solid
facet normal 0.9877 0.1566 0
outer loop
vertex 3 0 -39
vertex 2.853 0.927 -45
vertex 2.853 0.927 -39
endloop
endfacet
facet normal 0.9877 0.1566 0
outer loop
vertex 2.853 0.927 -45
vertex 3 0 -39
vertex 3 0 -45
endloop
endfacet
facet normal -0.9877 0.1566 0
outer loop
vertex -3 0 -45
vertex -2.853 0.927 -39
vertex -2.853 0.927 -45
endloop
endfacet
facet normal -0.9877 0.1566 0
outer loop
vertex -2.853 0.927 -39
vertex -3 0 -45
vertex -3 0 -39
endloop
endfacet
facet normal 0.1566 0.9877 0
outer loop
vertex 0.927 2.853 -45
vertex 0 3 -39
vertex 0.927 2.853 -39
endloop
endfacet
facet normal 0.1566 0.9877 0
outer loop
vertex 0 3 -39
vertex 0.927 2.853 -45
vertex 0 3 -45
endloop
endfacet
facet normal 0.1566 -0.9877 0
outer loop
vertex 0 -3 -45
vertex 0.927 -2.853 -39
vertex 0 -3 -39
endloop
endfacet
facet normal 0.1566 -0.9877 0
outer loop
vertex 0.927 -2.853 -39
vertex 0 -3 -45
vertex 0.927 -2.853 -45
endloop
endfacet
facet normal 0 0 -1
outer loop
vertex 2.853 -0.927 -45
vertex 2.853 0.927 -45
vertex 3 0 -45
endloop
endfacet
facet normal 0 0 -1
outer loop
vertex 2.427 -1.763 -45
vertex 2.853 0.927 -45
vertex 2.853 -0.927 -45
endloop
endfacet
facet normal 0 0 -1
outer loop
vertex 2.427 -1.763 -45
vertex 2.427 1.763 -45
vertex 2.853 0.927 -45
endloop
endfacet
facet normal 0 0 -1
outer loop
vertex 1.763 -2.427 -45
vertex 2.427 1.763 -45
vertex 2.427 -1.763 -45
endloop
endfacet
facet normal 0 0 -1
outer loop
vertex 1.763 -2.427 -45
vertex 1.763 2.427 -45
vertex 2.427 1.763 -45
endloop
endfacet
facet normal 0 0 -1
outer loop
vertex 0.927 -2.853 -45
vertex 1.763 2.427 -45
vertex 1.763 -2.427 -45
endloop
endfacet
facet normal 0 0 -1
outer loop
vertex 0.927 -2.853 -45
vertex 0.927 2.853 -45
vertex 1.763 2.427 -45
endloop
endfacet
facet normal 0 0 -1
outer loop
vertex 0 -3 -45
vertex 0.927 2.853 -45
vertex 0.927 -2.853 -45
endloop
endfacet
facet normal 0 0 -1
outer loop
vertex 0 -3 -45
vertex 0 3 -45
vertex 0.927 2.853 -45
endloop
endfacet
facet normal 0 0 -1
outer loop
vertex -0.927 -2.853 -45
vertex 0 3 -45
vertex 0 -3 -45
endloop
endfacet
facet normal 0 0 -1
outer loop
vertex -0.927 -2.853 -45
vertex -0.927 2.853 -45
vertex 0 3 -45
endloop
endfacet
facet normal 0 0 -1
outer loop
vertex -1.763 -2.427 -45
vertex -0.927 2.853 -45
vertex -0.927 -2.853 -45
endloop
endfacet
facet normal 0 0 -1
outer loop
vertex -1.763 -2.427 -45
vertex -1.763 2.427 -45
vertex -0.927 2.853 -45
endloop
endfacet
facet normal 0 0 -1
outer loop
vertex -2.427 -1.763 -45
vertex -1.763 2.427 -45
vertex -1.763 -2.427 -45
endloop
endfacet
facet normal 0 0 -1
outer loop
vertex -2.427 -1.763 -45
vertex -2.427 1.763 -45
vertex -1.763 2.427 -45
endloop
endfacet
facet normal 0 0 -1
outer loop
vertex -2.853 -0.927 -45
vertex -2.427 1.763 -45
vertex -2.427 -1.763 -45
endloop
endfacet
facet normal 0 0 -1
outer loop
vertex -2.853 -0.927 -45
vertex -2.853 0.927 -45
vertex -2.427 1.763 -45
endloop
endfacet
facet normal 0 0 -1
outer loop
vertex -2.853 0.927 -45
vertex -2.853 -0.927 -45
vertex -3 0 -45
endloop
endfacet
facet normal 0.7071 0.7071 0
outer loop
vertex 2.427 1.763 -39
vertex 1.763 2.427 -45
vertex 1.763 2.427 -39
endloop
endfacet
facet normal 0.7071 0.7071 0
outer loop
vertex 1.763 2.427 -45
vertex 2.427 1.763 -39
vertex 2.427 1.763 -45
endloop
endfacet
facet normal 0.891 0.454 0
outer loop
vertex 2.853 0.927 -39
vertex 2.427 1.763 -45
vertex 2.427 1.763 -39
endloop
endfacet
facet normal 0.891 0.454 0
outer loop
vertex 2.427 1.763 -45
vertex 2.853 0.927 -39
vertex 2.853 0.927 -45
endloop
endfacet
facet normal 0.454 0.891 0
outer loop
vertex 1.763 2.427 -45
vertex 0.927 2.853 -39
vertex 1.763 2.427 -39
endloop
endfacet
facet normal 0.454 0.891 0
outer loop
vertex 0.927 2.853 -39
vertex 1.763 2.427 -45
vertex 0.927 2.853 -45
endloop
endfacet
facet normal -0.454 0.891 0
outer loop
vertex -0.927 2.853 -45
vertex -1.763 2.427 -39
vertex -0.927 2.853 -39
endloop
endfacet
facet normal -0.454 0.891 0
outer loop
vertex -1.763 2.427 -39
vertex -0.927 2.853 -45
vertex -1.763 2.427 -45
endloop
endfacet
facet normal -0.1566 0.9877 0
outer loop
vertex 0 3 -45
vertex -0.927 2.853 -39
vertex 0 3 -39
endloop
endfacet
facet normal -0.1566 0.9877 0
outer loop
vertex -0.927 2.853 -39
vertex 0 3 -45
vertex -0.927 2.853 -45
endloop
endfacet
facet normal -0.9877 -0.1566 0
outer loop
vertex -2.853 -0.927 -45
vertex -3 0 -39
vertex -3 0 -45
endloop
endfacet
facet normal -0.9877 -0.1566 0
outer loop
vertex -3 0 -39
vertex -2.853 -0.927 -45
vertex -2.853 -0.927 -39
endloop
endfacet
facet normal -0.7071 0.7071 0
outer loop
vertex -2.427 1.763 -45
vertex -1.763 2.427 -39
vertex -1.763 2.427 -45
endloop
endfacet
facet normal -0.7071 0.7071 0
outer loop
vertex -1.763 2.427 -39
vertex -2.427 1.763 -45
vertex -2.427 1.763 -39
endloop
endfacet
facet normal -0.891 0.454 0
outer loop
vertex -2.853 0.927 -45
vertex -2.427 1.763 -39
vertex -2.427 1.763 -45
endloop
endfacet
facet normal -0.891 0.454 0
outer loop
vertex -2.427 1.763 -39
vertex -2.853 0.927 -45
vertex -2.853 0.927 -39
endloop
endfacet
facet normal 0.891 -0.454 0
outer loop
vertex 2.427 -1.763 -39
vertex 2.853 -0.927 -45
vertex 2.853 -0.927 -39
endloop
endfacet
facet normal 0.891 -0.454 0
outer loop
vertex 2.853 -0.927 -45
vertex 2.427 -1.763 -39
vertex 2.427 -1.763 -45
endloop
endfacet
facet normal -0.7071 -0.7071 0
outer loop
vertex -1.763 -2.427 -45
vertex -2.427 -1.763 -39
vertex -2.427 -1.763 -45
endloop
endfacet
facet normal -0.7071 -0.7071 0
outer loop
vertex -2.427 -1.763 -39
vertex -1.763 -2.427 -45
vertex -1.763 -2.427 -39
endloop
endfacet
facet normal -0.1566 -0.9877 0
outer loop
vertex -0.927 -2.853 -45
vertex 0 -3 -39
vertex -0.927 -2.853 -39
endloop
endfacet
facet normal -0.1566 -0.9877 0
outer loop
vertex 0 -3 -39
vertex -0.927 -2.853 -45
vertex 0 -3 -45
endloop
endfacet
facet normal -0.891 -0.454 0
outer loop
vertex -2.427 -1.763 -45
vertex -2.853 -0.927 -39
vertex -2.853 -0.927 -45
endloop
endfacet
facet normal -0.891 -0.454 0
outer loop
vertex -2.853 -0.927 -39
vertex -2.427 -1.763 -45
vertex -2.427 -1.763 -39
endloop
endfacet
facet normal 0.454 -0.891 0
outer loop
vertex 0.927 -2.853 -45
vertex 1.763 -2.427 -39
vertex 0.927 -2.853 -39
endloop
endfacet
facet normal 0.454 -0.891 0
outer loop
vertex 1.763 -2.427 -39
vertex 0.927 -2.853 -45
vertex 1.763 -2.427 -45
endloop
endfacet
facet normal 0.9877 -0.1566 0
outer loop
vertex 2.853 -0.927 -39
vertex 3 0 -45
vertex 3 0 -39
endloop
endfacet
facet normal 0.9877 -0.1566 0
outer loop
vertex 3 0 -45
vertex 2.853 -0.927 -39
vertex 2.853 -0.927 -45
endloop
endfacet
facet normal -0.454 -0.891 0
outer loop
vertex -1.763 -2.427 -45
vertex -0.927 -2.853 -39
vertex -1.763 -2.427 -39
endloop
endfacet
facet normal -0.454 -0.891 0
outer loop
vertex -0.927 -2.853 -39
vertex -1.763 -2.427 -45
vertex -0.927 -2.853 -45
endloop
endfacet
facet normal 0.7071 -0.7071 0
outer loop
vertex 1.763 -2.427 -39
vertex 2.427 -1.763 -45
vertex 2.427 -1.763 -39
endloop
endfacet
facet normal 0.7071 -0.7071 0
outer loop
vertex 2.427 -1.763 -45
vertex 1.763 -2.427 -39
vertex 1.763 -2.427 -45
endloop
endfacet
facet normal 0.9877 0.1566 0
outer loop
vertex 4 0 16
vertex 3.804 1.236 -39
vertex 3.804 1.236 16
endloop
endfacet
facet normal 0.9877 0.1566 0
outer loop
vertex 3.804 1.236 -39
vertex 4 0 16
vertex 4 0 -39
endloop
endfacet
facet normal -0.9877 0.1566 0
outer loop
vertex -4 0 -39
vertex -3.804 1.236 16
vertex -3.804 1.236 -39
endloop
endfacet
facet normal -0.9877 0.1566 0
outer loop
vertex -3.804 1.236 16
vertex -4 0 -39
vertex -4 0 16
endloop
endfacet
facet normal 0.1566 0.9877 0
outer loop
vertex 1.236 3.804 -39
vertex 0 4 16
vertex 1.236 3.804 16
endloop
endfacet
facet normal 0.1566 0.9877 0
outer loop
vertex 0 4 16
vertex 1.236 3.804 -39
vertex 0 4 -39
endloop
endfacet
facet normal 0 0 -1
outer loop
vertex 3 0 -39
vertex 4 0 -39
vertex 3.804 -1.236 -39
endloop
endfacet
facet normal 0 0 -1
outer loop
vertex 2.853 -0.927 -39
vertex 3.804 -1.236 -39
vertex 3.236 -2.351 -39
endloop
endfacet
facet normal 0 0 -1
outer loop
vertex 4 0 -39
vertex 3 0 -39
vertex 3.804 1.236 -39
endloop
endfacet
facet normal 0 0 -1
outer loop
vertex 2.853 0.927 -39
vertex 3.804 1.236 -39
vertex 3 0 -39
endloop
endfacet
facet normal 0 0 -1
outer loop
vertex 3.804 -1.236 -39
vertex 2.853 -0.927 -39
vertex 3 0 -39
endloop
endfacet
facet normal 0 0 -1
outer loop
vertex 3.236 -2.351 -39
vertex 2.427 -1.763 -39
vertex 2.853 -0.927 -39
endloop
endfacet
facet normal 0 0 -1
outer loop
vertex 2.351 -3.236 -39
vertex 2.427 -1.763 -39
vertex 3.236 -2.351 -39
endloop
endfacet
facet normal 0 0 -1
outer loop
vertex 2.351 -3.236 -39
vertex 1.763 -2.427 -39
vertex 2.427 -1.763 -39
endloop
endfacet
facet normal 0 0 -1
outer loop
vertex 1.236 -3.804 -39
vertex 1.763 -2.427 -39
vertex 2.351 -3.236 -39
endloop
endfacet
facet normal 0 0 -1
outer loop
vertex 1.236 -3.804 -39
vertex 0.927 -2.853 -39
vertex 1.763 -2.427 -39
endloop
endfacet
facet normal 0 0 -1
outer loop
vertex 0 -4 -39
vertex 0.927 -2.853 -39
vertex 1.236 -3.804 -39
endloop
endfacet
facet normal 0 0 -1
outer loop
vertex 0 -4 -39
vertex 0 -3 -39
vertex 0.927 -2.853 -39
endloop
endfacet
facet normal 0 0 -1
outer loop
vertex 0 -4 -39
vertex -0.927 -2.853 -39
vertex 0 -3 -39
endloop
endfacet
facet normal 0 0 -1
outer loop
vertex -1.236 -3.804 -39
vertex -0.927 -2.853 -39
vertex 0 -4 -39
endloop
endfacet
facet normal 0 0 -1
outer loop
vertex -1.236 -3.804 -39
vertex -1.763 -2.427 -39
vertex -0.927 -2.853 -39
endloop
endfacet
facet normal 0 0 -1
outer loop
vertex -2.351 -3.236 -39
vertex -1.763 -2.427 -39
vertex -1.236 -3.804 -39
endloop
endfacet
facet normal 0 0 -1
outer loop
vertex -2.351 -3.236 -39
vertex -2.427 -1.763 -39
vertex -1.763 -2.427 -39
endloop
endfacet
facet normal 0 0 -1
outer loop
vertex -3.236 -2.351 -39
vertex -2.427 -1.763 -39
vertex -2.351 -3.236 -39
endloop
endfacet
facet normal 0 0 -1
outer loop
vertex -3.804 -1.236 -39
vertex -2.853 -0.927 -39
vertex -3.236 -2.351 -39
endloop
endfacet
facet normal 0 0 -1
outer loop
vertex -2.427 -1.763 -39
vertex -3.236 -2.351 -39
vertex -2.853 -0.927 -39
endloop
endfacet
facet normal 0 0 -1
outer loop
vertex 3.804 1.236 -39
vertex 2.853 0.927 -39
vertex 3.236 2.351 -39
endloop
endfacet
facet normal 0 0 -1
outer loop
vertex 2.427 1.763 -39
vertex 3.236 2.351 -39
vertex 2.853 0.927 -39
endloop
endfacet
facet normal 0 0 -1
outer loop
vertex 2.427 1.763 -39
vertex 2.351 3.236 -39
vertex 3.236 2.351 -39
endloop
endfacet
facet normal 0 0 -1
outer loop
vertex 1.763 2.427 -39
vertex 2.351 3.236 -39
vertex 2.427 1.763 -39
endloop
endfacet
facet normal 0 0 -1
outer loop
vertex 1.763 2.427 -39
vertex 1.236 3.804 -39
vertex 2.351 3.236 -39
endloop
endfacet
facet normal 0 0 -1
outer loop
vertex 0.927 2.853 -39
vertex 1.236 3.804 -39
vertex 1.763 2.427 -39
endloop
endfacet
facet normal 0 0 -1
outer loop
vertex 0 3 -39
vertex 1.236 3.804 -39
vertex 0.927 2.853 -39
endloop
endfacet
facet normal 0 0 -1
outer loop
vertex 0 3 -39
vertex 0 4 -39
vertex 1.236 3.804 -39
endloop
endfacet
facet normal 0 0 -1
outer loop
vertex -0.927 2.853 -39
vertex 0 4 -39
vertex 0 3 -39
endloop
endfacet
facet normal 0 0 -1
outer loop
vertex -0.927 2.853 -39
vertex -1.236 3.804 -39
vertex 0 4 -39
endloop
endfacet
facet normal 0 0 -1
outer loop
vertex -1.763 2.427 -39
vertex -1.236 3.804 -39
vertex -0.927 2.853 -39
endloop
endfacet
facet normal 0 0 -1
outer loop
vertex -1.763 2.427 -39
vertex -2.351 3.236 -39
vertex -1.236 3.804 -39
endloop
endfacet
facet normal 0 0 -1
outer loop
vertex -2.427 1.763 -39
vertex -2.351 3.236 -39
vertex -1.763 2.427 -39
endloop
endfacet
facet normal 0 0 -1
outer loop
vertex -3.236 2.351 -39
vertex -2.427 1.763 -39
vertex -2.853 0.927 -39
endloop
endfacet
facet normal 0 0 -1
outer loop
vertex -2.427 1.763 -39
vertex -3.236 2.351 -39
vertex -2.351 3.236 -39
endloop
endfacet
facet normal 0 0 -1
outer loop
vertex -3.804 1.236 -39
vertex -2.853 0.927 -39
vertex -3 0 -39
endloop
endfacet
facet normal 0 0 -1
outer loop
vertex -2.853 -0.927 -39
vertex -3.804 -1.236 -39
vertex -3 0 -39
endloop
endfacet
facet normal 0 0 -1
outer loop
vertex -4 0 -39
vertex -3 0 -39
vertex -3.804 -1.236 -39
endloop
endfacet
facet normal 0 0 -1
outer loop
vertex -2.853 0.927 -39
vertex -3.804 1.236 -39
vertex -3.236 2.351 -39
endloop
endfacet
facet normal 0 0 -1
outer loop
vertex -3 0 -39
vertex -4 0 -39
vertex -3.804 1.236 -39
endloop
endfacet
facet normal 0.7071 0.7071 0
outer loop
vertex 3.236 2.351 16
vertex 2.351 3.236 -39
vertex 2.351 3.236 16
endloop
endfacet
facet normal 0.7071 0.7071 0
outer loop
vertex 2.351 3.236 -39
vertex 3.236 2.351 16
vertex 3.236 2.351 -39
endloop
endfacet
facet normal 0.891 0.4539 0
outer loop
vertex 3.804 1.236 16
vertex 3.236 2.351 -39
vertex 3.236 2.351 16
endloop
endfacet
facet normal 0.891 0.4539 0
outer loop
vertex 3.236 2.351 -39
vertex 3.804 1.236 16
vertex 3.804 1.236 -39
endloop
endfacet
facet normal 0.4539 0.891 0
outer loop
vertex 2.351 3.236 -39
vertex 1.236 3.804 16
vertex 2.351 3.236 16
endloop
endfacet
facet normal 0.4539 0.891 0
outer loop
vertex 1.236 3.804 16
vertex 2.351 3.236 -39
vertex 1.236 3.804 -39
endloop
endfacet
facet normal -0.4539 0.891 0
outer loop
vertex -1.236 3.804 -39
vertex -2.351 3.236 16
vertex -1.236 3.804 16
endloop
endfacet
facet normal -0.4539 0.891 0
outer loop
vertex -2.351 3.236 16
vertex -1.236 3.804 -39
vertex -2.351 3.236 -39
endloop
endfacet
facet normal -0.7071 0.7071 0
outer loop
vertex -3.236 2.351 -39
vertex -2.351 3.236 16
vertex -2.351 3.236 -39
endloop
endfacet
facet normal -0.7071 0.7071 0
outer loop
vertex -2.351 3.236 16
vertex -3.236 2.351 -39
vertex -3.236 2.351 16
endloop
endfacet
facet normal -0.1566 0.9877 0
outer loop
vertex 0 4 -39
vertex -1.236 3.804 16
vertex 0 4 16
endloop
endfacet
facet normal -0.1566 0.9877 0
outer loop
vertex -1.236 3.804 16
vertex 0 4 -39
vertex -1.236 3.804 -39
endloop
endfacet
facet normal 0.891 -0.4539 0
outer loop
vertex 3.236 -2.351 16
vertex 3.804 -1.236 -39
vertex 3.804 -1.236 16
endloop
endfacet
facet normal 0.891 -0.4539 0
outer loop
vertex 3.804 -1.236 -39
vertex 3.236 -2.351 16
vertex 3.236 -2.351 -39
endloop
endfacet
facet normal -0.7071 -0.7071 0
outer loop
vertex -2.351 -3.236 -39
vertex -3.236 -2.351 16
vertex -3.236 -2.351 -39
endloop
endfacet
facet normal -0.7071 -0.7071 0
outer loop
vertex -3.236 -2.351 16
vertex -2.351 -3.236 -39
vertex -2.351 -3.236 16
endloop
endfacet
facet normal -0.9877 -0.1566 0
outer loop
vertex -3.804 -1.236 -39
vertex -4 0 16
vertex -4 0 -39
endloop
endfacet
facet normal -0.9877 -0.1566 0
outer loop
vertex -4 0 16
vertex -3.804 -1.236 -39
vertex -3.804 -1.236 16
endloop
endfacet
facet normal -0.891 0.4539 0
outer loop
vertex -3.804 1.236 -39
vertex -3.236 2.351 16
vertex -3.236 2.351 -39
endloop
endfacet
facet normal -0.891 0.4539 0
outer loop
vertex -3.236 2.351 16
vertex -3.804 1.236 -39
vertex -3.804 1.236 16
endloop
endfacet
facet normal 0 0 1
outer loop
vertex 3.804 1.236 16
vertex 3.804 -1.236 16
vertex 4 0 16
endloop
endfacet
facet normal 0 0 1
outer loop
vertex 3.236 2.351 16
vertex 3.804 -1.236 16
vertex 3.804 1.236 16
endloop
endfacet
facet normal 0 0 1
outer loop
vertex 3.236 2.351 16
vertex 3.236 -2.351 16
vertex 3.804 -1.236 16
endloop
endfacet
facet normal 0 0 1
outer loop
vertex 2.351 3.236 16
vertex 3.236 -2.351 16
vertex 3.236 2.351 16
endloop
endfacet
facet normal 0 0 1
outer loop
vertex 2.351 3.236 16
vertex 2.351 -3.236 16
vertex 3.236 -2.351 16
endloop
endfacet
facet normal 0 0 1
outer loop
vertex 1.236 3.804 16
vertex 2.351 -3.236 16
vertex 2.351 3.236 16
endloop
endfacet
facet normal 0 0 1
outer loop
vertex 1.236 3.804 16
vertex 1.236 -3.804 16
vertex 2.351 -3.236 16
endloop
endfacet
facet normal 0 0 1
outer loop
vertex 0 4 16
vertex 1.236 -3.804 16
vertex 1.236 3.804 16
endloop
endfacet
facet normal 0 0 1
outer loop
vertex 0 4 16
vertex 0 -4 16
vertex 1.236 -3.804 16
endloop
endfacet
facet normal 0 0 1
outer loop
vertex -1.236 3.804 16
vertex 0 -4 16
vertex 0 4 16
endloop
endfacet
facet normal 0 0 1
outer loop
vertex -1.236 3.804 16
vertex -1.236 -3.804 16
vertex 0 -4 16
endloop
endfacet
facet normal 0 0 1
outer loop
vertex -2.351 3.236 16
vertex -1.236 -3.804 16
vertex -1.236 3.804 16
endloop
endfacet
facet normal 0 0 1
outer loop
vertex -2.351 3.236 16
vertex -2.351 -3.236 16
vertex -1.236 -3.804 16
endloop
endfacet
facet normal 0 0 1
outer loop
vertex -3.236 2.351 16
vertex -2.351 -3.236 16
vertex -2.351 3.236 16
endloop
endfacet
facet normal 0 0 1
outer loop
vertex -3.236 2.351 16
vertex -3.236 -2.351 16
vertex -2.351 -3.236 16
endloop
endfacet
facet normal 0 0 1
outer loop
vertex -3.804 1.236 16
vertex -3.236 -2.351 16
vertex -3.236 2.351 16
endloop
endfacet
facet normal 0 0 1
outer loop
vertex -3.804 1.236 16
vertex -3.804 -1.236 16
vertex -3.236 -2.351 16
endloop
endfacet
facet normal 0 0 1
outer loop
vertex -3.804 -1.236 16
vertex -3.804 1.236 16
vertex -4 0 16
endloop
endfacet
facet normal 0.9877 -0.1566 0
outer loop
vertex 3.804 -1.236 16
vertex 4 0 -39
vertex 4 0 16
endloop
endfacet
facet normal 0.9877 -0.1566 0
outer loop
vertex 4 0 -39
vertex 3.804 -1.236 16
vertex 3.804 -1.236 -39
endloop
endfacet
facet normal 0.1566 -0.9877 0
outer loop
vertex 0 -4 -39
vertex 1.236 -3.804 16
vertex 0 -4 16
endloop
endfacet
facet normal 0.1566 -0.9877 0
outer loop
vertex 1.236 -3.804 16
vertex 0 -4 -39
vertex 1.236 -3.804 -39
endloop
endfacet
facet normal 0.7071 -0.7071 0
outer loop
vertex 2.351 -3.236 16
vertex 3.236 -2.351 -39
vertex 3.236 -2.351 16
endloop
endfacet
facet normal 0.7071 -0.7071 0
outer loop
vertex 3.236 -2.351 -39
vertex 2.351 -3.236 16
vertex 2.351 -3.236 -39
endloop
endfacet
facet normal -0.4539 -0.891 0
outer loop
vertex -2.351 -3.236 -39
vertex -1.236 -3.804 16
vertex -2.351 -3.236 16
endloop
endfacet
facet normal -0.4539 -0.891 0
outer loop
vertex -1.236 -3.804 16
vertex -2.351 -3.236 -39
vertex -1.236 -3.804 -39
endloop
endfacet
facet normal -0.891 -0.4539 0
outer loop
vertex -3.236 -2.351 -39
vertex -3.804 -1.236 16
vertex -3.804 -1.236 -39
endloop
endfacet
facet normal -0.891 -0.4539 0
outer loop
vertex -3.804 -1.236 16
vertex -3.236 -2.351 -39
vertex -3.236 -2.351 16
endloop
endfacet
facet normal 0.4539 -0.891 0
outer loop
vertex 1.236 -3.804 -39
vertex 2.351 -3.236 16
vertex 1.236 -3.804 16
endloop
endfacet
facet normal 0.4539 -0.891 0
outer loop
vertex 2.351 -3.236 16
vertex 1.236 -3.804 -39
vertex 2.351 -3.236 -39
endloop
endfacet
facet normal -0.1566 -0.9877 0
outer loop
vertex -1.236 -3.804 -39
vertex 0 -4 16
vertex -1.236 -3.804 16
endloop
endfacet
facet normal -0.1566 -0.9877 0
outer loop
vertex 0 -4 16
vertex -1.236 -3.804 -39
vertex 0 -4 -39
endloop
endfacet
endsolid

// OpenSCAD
$fn=20;

!union(){
  translate([0,0,-60+15]) cylinder(d=6,h=60);
  translate([0,0,-39]) cylinder(d=8,h=39+16);
}


translate([0,0,-39.6]) donut();
donut(8,20);
translate([0,0,16]) circle(10);

module donut(di=6.5,do=20)
difference(){
  circle(d=do);
  circle(d=di);
}
